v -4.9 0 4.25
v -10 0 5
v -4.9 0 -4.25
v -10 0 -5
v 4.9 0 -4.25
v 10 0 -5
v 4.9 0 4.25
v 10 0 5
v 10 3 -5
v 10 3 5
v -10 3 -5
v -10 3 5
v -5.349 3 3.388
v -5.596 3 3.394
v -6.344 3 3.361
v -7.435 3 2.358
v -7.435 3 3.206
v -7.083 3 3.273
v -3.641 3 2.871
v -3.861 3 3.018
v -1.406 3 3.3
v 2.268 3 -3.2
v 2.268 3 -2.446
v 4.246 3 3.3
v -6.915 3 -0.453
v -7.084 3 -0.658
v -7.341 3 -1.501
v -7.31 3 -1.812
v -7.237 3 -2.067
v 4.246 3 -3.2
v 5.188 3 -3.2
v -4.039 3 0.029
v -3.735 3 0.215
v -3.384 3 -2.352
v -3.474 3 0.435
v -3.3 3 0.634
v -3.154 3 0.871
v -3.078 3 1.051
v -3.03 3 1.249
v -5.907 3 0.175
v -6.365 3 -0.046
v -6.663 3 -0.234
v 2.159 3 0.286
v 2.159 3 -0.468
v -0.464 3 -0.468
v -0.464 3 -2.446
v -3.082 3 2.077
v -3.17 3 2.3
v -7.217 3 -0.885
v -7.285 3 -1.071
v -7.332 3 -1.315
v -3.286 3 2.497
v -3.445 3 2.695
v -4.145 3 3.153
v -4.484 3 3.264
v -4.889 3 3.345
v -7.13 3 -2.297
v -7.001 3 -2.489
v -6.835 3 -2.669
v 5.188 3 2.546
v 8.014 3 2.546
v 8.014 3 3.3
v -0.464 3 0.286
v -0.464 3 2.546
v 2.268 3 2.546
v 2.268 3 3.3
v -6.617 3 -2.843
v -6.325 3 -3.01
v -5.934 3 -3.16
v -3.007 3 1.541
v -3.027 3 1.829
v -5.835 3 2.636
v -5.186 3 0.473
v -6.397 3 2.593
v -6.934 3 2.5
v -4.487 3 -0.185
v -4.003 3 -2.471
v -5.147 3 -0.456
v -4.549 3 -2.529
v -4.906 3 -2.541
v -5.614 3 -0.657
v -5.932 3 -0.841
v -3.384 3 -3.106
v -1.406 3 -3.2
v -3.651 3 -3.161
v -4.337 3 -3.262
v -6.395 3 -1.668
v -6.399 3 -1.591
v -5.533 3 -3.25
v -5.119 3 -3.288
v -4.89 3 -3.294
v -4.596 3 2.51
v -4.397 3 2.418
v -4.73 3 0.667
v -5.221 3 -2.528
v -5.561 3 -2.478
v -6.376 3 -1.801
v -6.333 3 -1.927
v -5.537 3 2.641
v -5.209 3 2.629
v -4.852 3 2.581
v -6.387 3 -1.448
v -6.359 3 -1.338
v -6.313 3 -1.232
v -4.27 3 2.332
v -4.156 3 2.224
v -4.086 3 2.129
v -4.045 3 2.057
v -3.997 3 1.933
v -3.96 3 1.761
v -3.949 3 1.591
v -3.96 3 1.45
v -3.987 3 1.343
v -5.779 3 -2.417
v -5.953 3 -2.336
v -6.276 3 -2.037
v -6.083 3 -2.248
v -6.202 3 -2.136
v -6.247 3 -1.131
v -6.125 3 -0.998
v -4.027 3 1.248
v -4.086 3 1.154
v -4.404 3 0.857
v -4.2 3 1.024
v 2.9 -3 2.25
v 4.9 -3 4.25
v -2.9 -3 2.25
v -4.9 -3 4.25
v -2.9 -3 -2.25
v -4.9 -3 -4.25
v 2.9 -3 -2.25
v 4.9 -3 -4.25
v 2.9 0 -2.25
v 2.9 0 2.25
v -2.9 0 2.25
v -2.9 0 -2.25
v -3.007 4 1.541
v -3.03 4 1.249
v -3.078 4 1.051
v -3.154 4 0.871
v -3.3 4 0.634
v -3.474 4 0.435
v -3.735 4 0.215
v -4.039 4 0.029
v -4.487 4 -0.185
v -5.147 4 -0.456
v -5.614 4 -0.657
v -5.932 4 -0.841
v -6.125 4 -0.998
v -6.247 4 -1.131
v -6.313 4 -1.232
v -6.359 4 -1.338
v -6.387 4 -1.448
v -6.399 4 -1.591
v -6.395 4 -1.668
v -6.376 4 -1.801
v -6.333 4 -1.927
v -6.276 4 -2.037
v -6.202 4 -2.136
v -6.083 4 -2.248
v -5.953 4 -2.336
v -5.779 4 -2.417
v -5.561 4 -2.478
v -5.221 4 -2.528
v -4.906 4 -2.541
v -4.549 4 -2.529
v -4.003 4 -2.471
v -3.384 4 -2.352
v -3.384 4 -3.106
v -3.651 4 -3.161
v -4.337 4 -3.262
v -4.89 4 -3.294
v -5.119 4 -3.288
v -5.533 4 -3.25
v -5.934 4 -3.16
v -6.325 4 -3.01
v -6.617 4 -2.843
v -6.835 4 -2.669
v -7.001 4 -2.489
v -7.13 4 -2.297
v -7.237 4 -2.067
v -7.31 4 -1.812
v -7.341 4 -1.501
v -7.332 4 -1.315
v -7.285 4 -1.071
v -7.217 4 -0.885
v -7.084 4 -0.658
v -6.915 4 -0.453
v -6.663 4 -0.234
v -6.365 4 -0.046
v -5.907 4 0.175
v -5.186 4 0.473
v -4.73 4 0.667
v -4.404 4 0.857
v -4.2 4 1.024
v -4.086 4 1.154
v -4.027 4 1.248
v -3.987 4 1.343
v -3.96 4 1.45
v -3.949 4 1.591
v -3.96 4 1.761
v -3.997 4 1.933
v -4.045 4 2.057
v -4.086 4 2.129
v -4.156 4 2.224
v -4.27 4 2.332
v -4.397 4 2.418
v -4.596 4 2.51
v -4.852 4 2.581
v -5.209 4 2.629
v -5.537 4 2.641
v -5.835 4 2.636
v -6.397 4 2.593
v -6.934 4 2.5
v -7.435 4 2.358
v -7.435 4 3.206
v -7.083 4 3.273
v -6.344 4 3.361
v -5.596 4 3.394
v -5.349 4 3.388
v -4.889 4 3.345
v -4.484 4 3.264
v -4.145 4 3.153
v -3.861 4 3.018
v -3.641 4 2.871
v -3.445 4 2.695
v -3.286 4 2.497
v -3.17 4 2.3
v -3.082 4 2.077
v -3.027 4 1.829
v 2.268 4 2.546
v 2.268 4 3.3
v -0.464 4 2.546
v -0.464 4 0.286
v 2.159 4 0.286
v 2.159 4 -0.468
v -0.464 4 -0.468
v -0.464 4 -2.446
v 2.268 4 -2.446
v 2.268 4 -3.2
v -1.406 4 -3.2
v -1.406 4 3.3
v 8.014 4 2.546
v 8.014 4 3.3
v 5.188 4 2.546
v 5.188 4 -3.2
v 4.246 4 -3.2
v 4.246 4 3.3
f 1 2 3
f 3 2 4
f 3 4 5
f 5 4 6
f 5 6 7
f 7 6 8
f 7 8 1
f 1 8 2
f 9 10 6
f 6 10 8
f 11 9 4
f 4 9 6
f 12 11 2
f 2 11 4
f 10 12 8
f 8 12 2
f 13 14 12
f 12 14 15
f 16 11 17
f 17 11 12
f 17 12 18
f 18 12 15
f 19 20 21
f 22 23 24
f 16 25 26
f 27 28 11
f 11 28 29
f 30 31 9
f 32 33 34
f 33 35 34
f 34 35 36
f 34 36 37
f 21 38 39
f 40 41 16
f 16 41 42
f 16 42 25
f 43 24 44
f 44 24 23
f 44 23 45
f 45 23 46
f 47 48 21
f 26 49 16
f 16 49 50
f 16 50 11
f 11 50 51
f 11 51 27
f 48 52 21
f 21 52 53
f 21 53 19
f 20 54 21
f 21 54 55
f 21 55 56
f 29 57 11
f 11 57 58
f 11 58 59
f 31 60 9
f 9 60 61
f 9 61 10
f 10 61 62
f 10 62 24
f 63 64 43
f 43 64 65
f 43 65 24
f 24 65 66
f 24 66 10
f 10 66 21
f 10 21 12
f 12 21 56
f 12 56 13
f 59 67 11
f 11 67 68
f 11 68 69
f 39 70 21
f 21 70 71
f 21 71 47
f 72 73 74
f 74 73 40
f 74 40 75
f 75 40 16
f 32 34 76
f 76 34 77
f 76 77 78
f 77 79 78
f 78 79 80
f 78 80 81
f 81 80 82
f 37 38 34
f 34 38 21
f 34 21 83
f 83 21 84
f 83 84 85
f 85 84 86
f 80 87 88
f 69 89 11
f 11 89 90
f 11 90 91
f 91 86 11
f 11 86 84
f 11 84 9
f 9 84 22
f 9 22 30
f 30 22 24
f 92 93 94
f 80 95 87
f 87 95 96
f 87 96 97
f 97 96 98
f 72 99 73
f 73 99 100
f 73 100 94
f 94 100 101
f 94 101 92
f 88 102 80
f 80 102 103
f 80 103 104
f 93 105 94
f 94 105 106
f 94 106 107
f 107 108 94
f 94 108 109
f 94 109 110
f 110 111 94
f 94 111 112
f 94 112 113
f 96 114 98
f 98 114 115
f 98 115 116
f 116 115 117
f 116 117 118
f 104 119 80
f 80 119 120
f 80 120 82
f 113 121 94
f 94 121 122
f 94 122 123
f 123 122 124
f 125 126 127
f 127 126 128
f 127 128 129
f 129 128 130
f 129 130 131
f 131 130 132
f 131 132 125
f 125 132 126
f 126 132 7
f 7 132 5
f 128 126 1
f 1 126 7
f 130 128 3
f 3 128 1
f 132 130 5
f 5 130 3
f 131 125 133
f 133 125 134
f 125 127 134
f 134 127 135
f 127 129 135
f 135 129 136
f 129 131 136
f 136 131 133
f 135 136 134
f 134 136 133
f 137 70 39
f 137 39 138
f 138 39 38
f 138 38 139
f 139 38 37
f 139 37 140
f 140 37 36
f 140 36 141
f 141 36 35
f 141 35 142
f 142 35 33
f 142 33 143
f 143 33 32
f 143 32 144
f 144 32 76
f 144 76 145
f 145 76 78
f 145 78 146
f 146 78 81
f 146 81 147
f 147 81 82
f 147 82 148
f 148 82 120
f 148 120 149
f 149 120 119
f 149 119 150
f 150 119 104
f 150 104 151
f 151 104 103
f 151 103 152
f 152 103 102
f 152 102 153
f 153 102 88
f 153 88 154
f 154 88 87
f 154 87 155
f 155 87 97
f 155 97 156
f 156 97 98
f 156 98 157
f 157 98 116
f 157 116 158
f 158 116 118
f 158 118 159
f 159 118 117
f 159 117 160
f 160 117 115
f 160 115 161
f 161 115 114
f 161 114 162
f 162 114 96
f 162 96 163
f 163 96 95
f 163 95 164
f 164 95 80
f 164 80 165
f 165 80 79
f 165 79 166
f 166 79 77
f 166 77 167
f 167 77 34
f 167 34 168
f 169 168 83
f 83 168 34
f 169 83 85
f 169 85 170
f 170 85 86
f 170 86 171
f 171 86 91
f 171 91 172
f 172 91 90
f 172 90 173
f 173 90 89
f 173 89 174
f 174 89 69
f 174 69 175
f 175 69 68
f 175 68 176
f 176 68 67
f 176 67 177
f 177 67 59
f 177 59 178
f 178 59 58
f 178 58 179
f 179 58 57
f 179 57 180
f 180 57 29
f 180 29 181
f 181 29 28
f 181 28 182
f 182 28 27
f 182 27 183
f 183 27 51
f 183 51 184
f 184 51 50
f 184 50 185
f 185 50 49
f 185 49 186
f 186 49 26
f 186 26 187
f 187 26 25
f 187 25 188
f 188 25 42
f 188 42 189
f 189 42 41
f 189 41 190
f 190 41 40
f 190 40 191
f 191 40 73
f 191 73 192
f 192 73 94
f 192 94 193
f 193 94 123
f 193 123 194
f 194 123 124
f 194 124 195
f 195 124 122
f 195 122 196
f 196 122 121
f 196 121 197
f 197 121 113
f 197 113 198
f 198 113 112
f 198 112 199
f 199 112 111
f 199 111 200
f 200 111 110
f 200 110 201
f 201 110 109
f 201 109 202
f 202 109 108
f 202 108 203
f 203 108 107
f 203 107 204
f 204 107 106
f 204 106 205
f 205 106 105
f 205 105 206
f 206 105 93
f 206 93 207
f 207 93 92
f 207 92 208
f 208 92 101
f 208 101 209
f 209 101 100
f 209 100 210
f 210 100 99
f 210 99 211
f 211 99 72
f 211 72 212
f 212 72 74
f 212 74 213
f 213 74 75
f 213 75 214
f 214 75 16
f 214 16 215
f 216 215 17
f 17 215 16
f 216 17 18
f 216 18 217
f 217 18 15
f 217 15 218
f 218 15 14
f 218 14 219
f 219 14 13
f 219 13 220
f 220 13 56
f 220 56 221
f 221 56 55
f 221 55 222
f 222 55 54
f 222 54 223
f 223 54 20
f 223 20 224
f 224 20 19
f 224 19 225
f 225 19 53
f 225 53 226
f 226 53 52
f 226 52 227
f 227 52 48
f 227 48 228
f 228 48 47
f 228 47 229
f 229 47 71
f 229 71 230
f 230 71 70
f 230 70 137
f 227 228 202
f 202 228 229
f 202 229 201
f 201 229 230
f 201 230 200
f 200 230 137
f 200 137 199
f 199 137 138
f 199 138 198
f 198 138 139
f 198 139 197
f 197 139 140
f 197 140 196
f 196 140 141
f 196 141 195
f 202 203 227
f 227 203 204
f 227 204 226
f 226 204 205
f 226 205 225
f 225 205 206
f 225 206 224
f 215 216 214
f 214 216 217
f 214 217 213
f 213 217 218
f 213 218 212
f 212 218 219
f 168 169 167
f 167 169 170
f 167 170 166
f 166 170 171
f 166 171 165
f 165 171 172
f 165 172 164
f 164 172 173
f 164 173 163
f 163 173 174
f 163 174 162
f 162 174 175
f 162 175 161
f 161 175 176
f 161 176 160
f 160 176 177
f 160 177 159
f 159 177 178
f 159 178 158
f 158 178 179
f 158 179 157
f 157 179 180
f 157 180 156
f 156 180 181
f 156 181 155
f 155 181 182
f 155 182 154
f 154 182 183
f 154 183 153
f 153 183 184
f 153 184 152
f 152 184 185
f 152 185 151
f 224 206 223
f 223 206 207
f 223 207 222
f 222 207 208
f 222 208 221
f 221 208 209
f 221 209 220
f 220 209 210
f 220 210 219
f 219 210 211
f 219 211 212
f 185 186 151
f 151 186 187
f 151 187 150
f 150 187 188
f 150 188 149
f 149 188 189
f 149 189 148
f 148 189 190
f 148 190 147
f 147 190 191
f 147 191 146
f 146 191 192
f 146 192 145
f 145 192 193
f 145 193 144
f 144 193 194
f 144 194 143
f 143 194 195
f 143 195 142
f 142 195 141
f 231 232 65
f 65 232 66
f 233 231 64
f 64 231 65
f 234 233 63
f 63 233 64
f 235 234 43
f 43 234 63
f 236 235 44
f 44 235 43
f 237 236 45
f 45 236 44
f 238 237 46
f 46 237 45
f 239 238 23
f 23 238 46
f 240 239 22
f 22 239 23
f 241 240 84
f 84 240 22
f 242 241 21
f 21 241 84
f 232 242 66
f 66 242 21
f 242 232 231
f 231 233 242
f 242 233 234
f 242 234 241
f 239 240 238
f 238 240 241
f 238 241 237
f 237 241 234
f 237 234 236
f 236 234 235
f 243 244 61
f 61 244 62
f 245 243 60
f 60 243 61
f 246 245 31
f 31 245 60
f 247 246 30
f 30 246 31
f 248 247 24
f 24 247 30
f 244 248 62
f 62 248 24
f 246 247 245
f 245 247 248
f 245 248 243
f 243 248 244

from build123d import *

# Parameters (mm, degrees)
SKETCH1_W           = 20
SKETCH1_H           = 10
BOSS_EXTRUDE1_DEPTH = 3
SKETCH2_W           = 9.8
SKETCH2_H           = 8.5
SKETCH2_W_2         = 5.8
SKETCH2_H_2         = 4.5
BOSS_EXTRUDE2_DEPTH = 3
BOSS_EXTRUDE3_DEPTH = 1


with BuildPart() as part:
    # Sketch1 → Boss-Extrude1 (new body)
    with BuildSketch(Plane(origin=(0, 0, 0), x_dir=(1, 0, 0), z_dir=(0, 1, 0))):
        Rectangle(SKETCH1_W, SKETCH1_H)
    extrude(amount=BOSS_EXTRUDE1_DEPTH)

    # Sketch2 → Boss-Extrude2 (add)
    with BuildSketch(Plane.XZ):
        Rectangle(SKETCH2_W, SKETCH2_H)
        Rectangle(SKETCH2_W_2, SKETCH2_H_2, mode=Mode.SUBTRACT)
    extrude(amount=BOSS_EXTRUDE2_DEPTH)

    # Sketch3 → Boss-Extrude3 (add)
    with BuildSketch(Plane(origin=(0, 3, 0), x_dir=(1, 0, 0), z_dir=(0, 1, 0))):
        with BuildLine():
            add(Edge.make_bspline(
                [(-3.007246377, -1.541055254), (-3.009361723, -1.616266832), (-3.01346546, -1.762176027), (-3.049571221, -1.974490768), (-3.109784234, -2.171698983), (-3.192526507, -2.355150602), (-3.298968583, -2.521513857), (-3.420549524, -2.676791882), (-3.565727351, -2.813375097), (-3.726560117, -2.937740496), (-3.905559946, -3.047190671), (-4.103184871, -3.139302997), (-4.316725708, -3.21887973), (-4.54677574, -3.283042654), (-4.79127798, -3.332920655), (-5.049025563, -3.367185197), (-5.318723514, -3.390311379), (-5.502591678, -3.39288864), (-5.596354167, -3.394202899)],
                knots=[0, 0, 0, 0, 1.005643061, 1.95093061, 2.870738502, 3.757832008, 4.633806625, 5.507195241, 6.389247641, 7.292512577, 8.223494331, 9.189475669, 10.205094408, 11.269007441, 12.381228937, 13.540657028, 14.745872513, 16, 16, 16, 16], degree=3))
            add(Edge.make_bspline(
                [(-5.596354167, -3.394202899), (-5.682718588, -3.393235229), (-5.855033921, -3.391304522), (-6.111280949, -3.379468444), (-6.361973178, -3.359915664), (-6.603364511, -3.33640358), (-6.833625513, -3.310266833), (-7.049705719, -3.280039115), (-7.248879542, -3.244891381), (-7.374986232, -3.218371914), (-7.434782609, -3.205797101)],
                knots=[0, 0, 0, 0, 1.119729043, 2.234096861, 3.324996266, 4.379512959, 5.378439906, 6.329323539, 7.207810484, 8, 8, 8, 8], degree=3))
            Line((-7.434782609, -3.205797101), (-7.434782609, -2.357971014))
            add(Edge.make_bspline(
                [(-7.434782609, -2.357971014), (-7.370762942, -2.379906097), (-7.239954637, -2.424724996), (-7.034769621, -2.477293495), (-6.819537264, -2.526663443), (-6.592212353, -2.567908961), (-6.350580188, -2.600371202), (-6.09371887, -2.623201503), (-5.82076552, -2.638661997), (-5.633665552, -2.639928566), (-5.537477355, -2.64057971)],
                knots=[0, 0, 0, 0, 0.842364813, 1.72116351, 2.635659137, 3.591954833, 4.596841017, 5.670471508, 6.802388115, 8, 8, 8, 8], degree=3))
            add(Edge.make_bspline(
                [(-5.537477355, -2.64057971), (-5.468755519, -2.639872283), (-5.336572064, -2.638511576), (-5.146102436, -2.624285716), (-4.971197978, -2.605738792), (-4.812235473, -2.573524326), (-4.66761954, -2.536445211), (-4.53690496, -2.489260746), (-4.420297965, -2.43310849), (-4.315764365, -2.370159285), (-4.226176786, -2.297427118), (-4.14763217, -2.219043718), (-4.08459987, -2.131603251), (-4.033398257, -2.037180835), (-3.995547608, -1.93545715), (-3.969262703, -1.826700795), (-3.952727851, -1.711319689), (-3.950446508, -1.631881026), (-3.949275362, -1.591100543)],
                knots=[0, 0, 0, 0, 1.523194236, 2.929797672, 4.233142745, 5.41923506, 6.522104548, 7.540643951, 8.494207191, 9.387815665, 10.238903194, 11.04655015, 11.840679357, 12.619387111, 13.4214478, 14.239285369, 15.096122854, 16, 16, 16, 16], degree=3))
            add(Edge.make_bspline(
                [(-3.949275362, -1.591100543), (-3.950736926, -1.548727509), (-3.953592513, -1.465939512), (-3.982760391, -1.347167725), (-4.028364162, -1.237025632), (-4.095221609, -1.138795344), (-4.173790678, -1.046499637), (-4.266091432, -0.961927422), (-4.367978541, -0.880147855), (-4.522576355, -0.777306411), (-4.738901588, -0.6564636), (-5.027071288, -0.535618888), (-5.332657608, -0.414283489), (-5.646271299, -0.28773006), (-5.959805031, -0.153393094), (-6.267393971, -0.011077429), (-6.555877209, 0.152188183), (-6.773110218, 0.314191425), (-6.924884877, 0.460070087), (-7.028139342, 0.576873874), (-7.116736104, 0.704422635), (-7.19857963, 0.83820536), (-7.26261074, 0.986049766), (-7.307035659, 1.146566576), (-7.336517595, 1.31977591), (-7.339194196, 1.439453928), (-7.34057971, 1.501403986)],
                knots=[0, 0, 0, 0, 0.619815692, 1.2109895, 1.781199776, 2.357496674, 2.943929778, 3.554333405, 4.188738872, 4.856760597, 6.272963823, 7.811824644, 9.431291666, 11.092170587, 12.76691914, 14.429617761, 16.056218893, 17.616396577, 18.384212937, 19.138341755, 19.896401647, 20.65718422, 21.4332038, 22.247956952, 23.09307348, 24, 24, 24, 24], degree=3))
            add(Edge.make_bspline(
                [(-7.34057971, 1.501403986), (-7.338890921, 1.55695311), (-7.335509193, 1.668187842), (-7.30757402, 1.834398802), (-7.263639098, 1.99915748), (-7.201785927, 2.161864622), (-7.120766105, 2.318754545), (-7.022162869, 2.469164015), (-6.90104822, 2.607647577), (-6.762169614, 2.738226423), (-6.601498999, 2.857697029), (-6.421044497, 2.966681175), (-6.217870333, 3.06021036), (-5.995865777, 3.145085669), (-5.75055523, 3.212458991), (-5.483154955, 3.260726864), (-5.193612621, 3.28796892), (-4.993414416, 3.292077257), (-4.889832428, 3.294202899)],
                knots=[0, 0, 0, 0, 0.784067079, 1.570060577, 2.373452904, 3.189297991, 4.022898002, 4.862695015, 5.722463422, 6.614650011, 7.550049647, 8.544652583, 9.586108202, 10.704431291, 11.897970904, 13.172772987, 14.537200697, 16, 16, 16, 16], degree=3))
            add(Edge.make_bspline(
                [(-4.889832428, 3.294202899), (-4.831915002, 3.293827656), (-4.71154814, 3.293047807), (-4.526083854, 3.279715221), (-4.332642127, 3.262900288), (-4.135942453, 3.23881275), (-3.939571378, 3.211313867), (-3.746785439, 3.17889299), (-3.561719244, 3.144290109), (-3.441899158, 3.118329271), (-3.384057971, 3.105797101)],
                knots=[0, 0, 0, 0, 0.91416123, 1.89985515, 2.934260182, 3.979599391, 5.027947684, 6.064525625, 7.065681407, 8, 8, 8, 8], degree=3))
            Line((-3.384057971, 3.105797101), (-3.384057971, 2.352173913))
            add(Edge.make_bspline(
                [(-3.384057971, 2.352173913), (-3.512802353, 2.380728564), (-3.769014174, 2.437554648), (-4.154613263, 2.494241446), (-4.53329374, 2.533940296), (-4.78326578, 2.538393033), (-4.906023551, 2.54057971)],
                knots=[0, 0, 0, 0, 1.029411825, 2.048613503, 3.041701399, 4, 4, 4, 4], degree=3))
            add(Edge.make_bspline(
                [(-4.906023551, 2.54057971), (-4.96785961, 2.539634528), (-5.087722119, 2.537802395), (-5.261250093, 2.526537867), (-5.421923855, 2.50591041), (-5.569906649, 2.478011851), (-5.705607433, 2.443486967), (-5.828608574, 2.399624608), (-5.938232428, 2.346084815), (-6.036323458, 2.285929472), (-6.121441499, 2.217830494), (-6.196267253, 2.145534626), (-6.25873862, 2.066920743), (-6.309166265, 1.982002857), (-6.348629922, 1.891910001), (-6.379278296, 1.797018907), (-6.39483351, 1.695718813), (-6.39729289, 1.626561307), (-6.398550725, 1.591191123)],
                knots=[0, 0, 0, 0, 1.491437277, 2.890989782, 4.191431573, 5.395946596, 6.521058188, 7.565423013, 8.539223212, 9.458660202, 10.334655275, 11.163081303, 11.963306063, 12.748694206, 13.538083787, 14.331542868, 15.146677777, 16, 16, 16, 16], degree=3))
            add(Edge.make_bspline(
                [(-6.398550725, 1.591191123), (-6.397090804, 1.54882223), (-6.394238428, 1.466042324), (-6.364939026, 1.346770736), (-6.319091437, 1.236318933), (-6.254990308, 1.135022601), (-6.173334725, 1.044741827), (-6.083461638, 0.956922737), (-5.981213723, 0.874535374), (-5.826918921, 0.769047924), (-5.608685055, 0.648834692), (-5.321927803, 0.522708732), (-5.01464681, 0.404830914), (-4.701773525, 0.277036411), (-4.387114081, 0.144096978), (-4.130666417, 0.020425333), (-3.931637116, -0.085736683), (-3.792159425, -0.174732598), (-3.659724913, -0.268594319), (-3.537951241, -0.372291237), (-3.423674946, -0.481967024), (-3.321521117, -0.602520833), (-3.230395949, -0.731327418), (-3.151822879, -0.869682551), (-3.084616777, -1.017867369), (-3.040791314, -1.18089857), (-3.011296839, -1.356483959), (-3.008627503, -1.478120166), (-3.007246377, -1.541055254)],
                knots=[0, 0, 0, 0, 0.667485538, 1.304126353, 1.925325377, 2.548259058, 3.18485279, 3.841928735, 4.529978862, 5.253739616, 6.789399884, 8.452896455, 10.194043647, 11.982660287, 13.786213269, 15.583473082, 16.473910229, 17.343881083, 18.192645259, 19.033319022, 19.865571682, 20.689426309, 21.522902605, 22.351690537, 23.197589349, 24.082454772, 25.007853999, 26, 26, 26, 26], degree=3))
        make_face()
        Polygon((2.268115942, -3.3), (-1.405797101, -3.3), (-1.405797101, 3.2), (2.268115942, 3.2), (2.268115942, 2.446376812), (-0.463768116, 2.446376812), (-0.463768116, 0.468115942), (2.159193841, 0.468115942), (2.159193841, -0.285507246), (-0.463768116, -0.285507246), (-0.463768116, -2.546376812), (2.268115942, -2.546376812), align=None)
        Polygon((8.014492754, -3.3), (4.246376812, -3.3), (4.246376812, 3.2), (5.188405797, 3.2), (5.188405797, -2.546376812), (8.014492754, -2.546376812), align=None)
    extrude(amount=BOSS_EXTRUDE3_DEPTH)


solid = part.part
